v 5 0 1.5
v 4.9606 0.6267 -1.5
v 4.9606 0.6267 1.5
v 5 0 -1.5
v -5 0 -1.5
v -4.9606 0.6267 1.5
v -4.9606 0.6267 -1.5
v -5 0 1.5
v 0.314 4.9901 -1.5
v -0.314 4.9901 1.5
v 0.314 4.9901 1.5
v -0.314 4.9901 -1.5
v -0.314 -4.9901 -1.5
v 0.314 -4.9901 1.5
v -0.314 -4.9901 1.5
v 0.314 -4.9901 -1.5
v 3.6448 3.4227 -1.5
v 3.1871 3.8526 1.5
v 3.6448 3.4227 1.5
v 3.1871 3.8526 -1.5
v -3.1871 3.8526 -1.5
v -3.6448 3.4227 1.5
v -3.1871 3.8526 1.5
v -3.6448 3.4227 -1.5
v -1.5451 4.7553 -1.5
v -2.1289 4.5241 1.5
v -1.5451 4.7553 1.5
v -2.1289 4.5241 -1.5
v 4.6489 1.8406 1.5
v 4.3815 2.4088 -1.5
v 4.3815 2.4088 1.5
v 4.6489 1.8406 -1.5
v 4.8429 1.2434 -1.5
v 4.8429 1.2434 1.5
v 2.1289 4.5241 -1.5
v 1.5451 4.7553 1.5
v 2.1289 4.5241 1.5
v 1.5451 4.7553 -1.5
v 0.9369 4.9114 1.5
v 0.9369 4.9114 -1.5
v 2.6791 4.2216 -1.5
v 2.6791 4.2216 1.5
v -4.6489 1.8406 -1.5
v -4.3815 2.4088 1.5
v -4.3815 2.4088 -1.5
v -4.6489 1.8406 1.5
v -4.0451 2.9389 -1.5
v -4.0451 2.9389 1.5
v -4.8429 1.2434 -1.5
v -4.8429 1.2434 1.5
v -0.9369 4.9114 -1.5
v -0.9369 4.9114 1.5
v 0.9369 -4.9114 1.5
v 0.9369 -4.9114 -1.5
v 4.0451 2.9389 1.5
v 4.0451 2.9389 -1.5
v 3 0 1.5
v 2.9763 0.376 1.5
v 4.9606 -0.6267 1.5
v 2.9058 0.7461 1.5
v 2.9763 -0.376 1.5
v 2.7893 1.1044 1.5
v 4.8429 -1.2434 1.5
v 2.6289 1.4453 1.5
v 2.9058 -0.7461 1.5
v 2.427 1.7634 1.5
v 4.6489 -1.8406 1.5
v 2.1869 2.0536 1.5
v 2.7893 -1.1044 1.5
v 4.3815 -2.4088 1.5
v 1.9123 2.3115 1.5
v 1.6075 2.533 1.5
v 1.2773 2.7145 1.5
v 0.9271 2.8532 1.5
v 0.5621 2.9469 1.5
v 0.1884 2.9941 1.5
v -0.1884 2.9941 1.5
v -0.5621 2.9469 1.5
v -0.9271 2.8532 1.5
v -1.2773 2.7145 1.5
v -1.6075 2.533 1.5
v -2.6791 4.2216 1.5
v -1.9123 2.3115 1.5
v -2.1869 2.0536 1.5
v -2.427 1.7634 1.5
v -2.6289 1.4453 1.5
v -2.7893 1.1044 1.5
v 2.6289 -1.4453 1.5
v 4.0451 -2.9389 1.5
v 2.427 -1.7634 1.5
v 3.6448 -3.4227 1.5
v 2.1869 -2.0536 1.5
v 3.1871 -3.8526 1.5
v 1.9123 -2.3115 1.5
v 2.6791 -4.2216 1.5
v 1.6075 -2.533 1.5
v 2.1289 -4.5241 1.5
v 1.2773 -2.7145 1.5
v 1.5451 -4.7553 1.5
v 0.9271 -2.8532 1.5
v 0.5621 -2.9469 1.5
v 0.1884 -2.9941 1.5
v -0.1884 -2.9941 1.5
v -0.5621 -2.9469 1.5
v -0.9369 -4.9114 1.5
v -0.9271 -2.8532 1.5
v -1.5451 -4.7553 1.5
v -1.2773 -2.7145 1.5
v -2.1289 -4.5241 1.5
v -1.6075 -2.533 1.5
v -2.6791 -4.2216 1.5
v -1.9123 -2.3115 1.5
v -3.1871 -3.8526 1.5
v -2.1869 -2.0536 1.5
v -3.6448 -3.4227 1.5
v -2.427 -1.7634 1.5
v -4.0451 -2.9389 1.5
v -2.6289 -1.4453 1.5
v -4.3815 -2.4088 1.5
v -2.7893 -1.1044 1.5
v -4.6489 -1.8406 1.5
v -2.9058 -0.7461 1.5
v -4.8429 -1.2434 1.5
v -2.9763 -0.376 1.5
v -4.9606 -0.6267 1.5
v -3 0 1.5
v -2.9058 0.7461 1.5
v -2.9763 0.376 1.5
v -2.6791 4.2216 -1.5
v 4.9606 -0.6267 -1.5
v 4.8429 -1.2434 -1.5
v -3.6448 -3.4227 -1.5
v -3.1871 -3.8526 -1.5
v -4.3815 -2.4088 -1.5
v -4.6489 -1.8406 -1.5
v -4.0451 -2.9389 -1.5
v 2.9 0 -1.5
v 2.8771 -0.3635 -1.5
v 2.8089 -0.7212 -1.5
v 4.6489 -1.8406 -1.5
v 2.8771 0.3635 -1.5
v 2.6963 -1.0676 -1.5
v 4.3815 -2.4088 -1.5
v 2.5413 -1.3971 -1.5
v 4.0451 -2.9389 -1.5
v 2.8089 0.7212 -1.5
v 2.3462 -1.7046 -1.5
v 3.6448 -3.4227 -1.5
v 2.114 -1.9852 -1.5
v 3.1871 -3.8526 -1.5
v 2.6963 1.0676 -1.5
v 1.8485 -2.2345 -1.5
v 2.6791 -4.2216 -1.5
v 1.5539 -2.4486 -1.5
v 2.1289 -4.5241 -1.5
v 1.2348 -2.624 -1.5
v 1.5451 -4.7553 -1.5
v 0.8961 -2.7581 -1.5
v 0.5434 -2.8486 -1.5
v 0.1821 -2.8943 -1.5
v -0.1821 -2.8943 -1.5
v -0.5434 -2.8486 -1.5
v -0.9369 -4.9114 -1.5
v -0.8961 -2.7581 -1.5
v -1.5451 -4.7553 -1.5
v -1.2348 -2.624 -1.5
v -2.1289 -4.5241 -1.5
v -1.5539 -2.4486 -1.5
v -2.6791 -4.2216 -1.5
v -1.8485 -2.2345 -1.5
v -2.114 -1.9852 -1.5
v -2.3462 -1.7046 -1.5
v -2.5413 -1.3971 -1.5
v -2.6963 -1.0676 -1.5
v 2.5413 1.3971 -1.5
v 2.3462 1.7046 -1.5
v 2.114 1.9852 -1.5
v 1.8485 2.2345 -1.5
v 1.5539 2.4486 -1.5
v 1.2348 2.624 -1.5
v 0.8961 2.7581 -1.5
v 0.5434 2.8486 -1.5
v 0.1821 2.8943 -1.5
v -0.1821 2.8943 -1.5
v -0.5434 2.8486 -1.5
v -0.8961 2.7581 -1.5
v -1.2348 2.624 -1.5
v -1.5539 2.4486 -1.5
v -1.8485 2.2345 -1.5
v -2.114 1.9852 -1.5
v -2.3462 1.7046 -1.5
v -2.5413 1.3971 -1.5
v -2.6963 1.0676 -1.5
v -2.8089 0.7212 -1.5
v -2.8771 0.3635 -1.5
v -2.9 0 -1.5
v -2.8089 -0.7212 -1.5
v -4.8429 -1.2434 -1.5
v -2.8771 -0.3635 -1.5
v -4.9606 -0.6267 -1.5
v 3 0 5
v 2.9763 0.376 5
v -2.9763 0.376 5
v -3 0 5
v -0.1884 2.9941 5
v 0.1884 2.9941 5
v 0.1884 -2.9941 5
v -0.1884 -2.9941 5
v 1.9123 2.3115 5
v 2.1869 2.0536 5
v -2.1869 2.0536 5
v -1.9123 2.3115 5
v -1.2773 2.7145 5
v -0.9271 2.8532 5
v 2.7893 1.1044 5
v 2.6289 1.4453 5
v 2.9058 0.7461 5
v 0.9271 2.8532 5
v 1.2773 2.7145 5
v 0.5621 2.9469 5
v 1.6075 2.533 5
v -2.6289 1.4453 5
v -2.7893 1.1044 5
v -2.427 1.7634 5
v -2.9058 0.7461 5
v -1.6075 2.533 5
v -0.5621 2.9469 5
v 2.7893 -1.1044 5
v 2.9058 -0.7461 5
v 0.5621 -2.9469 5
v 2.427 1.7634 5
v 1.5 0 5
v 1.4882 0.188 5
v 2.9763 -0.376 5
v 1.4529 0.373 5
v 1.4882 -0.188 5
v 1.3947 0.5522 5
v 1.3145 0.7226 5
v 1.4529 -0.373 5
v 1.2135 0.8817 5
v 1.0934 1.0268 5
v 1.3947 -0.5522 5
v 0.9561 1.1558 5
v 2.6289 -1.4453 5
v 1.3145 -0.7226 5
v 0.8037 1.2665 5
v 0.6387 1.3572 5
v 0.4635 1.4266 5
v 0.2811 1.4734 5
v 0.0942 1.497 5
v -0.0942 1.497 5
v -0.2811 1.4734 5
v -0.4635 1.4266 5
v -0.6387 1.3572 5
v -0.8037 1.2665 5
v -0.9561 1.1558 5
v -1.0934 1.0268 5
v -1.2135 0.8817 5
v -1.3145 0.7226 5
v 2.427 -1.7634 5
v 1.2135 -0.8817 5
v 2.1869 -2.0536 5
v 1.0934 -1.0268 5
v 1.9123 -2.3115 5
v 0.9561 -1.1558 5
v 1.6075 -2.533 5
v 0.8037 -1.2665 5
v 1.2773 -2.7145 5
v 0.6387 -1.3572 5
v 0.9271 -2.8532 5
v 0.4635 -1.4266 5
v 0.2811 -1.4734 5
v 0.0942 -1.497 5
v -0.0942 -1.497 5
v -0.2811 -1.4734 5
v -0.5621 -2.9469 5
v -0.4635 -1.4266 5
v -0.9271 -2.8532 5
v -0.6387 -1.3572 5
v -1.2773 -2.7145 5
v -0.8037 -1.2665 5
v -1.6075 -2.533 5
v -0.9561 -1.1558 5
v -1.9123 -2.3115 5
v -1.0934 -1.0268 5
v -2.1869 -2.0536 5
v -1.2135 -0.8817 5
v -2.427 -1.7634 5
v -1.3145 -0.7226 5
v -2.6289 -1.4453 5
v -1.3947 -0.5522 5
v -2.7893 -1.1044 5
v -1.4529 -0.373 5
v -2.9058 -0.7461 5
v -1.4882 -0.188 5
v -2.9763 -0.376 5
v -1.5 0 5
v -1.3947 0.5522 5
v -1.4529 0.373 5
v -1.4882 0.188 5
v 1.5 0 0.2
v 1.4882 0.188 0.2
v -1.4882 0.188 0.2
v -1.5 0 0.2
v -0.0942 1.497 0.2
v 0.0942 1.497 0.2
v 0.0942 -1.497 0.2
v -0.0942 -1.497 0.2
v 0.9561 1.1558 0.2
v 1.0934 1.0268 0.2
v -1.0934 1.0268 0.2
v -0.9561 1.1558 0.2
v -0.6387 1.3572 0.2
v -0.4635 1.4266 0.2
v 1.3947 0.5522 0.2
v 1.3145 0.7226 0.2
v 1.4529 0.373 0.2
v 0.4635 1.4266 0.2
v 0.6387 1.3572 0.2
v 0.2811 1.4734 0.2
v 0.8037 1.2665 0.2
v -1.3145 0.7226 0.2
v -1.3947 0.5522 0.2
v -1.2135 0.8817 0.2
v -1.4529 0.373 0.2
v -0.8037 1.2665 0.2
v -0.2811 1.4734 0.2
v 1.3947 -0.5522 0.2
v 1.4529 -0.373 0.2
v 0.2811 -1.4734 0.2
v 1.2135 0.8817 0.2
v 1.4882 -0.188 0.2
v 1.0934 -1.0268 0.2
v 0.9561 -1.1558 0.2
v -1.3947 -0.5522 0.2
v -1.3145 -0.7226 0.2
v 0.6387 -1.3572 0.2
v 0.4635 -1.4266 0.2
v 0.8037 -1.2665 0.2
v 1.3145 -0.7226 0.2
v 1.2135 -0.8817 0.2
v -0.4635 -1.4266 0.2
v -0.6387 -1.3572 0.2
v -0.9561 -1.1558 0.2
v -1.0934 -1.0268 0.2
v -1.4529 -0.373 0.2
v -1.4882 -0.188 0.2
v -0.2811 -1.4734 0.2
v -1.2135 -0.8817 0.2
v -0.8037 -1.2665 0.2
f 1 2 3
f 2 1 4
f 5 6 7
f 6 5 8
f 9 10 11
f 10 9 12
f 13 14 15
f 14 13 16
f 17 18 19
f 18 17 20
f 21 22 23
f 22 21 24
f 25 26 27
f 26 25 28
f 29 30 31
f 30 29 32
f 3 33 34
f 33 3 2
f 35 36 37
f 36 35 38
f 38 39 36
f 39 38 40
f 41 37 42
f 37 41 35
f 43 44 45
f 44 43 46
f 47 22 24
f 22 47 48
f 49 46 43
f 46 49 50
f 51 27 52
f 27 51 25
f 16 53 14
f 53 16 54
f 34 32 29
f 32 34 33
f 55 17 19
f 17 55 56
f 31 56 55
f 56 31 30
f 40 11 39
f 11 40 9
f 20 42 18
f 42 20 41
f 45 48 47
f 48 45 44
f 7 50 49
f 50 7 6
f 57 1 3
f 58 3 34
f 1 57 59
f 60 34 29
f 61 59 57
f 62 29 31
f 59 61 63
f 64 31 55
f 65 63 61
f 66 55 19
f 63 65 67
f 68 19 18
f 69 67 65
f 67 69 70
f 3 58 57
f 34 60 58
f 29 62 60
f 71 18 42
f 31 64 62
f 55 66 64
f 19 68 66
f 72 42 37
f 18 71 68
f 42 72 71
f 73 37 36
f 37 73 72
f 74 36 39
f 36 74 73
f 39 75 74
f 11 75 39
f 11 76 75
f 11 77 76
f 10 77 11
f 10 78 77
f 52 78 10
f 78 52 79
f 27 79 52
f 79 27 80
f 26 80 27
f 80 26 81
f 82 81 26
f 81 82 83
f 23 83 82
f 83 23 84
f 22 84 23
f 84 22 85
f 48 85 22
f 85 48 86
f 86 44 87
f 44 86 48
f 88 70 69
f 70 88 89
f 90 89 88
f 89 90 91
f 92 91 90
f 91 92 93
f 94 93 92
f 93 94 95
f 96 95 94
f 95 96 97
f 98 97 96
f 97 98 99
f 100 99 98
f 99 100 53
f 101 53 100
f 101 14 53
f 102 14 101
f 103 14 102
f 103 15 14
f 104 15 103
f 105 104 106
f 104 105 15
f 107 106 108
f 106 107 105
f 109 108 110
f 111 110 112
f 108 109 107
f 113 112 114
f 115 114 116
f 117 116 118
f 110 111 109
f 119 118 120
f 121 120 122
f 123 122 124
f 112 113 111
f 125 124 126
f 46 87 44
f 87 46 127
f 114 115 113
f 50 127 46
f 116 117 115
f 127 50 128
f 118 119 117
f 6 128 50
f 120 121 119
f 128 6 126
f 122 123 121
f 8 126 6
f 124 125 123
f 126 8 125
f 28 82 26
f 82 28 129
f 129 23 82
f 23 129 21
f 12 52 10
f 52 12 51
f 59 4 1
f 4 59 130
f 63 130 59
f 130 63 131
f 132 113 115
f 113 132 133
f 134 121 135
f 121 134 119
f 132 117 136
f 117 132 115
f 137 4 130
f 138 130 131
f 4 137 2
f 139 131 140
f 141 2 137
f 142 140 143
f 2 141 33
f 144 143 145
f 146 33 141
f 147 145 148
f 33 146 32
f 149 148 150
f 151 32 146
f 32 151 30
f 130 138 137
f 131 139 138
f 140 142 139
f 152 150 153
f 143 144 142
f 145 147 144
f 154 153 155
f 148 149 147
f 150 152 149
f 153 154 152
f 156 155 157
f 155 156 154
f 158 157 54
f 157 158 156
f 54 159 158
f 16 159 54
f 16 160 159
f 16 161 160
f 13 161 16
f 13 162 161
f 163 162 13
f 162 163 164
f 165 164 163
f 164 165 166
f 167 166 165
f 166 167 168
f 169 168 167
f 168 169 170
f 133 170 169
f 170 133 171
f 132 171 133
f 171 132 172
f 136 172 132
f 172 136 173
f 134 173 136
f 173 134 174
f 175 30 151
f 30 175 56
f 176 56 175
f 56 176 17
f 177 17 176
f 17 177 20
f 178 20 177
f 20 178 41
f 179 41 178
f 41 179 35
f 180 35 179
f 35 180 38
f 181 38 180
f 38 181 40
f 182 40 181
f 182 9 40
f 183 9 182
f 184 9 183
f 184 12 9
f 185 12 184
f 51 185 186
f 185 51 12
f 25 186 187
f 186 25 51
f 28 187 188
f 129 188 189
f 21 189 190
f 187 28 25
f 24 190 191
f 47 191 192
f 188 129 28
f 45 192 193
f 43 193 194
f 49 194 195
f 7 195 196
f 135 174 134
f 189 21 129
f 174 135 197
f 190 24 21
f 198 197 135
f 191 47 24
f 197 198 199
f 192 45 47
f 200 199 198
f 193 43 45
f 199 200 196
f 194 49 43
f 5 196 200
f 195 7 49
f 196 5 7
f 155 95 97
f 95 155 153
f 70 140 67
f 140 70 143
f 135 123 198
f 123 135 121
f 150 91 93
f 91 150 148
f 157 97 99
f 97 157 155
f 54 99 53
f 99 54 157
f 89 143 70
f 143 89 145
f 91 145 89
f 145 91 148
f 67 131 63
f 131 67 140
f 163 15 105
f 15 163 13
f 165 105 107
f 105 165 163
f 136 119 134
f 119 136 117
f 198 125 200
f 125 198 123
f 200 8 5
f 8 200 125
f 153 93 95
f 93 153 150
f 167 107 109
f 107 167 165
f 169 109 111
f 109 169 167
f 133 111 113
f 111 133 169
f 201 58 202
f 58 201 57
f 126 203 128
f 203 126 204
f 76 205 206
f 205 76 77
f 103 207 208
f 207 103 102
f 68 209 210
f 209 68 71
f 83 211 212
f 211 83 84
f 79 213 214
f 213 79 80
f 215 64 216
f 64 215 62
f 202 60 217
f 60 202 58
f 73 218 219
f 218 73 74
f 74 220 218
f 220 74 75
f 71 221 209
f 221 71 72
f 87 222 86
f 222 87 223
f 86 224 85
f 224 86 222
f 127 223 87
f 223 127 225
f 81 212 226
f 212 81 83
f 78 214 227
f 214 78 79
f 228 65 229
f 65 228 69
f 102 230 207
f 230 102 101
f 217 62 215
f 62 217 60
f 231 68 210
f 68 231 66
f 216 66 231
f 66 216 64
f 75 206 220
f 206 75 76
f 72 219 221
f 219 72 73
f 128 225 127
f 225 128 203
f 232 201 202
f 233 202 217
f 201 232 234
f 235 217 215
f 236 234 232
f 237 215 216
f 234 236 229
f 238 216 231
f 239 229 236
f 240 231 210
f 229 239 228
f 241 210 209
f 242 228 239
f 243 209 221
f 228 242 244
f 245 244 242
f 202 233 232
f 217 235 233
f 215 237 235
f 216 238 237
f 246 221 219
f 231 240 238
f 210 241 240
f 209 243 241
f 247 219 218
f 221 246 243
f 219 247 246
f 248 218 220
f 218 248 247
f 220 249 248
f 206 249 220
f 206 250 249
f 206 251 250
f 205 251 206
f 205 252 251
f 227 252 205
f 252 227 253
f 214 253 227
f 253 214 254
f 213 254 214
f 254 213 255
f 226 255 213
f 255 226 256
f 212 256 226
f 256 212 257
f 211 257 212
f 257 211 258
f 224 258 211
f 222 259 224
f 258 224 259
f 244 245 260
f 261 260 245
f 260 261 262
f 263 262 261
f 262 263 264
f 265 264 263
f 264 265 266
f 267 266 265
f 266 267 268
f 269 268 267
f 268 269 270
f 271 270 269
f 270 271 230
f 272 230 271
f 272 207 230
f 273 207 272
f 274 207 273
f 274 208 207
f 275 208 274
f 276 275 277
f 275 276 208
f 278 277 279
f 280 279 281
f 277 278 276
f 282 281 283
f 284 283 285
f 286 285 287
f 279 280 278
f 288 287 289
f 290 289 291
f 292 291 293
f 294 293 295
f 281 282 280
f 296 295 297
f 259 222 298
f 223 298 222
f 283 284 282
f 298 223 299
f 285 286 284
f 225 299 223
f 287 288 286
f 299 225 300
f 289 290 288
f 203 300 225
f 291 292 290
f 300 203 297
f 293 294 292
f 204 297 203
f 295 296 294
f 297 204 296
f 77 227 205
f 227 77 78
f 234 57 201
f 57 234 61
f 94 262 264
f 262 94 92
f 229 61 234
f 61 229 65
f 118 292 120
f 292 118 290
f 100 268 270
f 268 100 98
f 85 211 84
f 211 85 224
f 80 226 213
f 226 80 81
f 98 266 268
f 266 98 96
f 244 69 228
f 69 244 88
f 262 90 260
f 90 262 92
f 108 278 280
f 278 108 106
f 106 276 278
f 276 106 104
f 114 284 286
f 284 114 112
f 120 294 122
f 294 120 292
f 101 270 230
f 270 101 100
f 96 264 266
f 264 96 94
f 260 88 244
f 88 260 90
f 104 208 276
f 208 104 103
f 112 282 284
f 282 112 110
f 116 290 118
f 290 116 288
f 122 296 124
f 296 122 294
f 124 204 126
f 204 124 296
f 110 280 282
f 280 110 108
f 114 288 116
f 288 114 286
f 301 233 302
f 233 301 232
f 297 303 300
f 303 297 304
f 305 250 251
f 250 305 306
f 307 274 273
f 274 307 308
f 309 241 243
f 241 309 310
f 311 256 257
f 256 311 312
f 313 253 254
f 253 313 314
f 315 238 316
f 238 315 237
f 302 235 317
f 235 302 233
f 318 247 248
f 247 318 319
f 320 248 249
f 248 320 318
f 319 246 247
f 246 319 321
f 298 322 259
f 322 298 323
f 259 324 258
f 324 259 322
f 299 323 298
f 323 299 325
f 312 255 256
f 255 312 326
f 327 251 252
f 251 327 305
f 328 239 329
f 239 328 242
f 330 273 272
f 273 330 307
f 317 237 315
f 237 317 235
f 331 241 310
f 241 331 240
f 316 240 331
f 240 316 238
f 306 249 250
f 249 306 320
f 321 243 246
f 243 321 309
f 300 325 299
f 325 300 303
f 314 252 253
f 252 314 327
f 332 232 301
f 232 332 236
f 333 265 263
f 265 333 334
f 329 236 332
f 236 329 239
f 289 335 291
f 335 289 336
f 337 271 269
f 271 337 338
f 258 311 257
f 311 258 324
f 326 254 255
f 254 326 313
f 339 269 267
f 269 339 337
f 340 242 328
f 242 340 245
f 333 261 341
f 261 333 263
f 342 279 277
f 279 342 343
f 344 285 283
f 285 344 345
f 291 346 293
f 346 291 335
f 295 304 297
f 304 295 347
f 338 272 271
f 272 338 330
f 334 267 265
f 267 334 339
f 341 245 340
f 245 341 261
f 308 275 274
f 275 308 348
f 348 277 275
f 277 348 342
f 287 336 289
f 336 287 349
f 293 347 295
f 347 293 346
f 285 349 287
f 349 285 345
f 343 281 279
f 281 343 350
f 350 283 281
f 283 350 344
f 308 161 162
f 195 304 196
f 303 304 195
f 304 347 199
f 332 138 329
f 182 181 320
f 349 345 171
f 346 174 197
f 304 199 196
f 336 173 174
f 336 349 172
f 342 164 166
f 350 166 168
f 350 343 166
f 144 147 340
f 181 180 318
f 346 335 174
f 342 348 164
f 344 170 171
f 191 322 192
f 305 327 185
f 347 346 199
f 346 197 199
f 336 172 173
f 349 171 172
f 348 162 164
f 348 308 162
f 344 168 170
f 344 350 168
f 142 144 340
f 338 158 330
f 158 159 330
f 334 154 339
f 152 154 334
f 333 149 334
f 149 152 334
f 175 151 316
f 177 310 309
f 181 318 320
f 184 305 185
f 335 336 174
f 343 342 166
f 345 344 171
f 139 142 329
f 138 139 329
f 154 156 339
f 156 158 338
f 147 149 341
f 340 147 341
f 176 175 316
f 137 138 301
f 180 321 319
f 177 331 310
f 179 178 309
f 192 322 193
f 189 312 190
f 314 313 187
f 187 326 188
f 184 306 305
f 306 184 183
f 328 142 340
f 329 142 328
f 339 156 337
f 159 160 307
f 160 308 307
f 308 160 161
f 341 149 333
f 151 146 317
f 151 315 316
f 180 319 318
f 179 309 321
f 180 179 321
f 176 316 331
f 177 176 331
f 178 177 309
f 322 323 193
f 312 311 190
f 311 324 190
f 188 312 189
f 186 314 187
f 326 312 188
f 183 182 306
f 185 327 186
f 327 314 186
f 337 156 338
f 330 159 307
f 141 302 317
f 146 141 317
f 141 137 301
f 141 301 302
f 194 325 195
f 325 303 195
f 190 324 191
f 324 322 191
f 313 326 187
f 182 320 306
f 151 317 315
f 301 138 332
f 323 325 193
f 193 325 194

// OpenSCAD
$fn = 50;


difference() {
	union() {
		translate(v = [0, 0, -1.5000000000]) {
			rotate(a = [0, 0, 0]) {
				cylinder(h = 3, r = 5.0000000000);
			}
		}
		translate(v = [0, 0, -1.5000000000]) {
			rotate(a = [0, 0, 0]) {
				cylinder(h = 6.5000000000, r = 3.0000000000);
			}
		}
	}
	union() {
		translate(v = [0, 0, -125.0000000000]) {
			rotate(a = [0, 0, 0]) {
				cylinder(h = 250, r = 1.5000000000);
			}
		}
		#translate(v = [0, 0, 0.2000000000]) {
			rotate(a = [0, 180, 0]) {
				cylinder(h = 1.7000000000, r1 = 1.5000000000, r2 = 2.9000000000);
			}
		}
		#translate(v = [0, 0, 5.0000000000]) {
			rotate(a = [0, 180, 0]) {
				cylinder(h = 6.5000000000, r = 1.5000000000);
			}
		}
	}
}
